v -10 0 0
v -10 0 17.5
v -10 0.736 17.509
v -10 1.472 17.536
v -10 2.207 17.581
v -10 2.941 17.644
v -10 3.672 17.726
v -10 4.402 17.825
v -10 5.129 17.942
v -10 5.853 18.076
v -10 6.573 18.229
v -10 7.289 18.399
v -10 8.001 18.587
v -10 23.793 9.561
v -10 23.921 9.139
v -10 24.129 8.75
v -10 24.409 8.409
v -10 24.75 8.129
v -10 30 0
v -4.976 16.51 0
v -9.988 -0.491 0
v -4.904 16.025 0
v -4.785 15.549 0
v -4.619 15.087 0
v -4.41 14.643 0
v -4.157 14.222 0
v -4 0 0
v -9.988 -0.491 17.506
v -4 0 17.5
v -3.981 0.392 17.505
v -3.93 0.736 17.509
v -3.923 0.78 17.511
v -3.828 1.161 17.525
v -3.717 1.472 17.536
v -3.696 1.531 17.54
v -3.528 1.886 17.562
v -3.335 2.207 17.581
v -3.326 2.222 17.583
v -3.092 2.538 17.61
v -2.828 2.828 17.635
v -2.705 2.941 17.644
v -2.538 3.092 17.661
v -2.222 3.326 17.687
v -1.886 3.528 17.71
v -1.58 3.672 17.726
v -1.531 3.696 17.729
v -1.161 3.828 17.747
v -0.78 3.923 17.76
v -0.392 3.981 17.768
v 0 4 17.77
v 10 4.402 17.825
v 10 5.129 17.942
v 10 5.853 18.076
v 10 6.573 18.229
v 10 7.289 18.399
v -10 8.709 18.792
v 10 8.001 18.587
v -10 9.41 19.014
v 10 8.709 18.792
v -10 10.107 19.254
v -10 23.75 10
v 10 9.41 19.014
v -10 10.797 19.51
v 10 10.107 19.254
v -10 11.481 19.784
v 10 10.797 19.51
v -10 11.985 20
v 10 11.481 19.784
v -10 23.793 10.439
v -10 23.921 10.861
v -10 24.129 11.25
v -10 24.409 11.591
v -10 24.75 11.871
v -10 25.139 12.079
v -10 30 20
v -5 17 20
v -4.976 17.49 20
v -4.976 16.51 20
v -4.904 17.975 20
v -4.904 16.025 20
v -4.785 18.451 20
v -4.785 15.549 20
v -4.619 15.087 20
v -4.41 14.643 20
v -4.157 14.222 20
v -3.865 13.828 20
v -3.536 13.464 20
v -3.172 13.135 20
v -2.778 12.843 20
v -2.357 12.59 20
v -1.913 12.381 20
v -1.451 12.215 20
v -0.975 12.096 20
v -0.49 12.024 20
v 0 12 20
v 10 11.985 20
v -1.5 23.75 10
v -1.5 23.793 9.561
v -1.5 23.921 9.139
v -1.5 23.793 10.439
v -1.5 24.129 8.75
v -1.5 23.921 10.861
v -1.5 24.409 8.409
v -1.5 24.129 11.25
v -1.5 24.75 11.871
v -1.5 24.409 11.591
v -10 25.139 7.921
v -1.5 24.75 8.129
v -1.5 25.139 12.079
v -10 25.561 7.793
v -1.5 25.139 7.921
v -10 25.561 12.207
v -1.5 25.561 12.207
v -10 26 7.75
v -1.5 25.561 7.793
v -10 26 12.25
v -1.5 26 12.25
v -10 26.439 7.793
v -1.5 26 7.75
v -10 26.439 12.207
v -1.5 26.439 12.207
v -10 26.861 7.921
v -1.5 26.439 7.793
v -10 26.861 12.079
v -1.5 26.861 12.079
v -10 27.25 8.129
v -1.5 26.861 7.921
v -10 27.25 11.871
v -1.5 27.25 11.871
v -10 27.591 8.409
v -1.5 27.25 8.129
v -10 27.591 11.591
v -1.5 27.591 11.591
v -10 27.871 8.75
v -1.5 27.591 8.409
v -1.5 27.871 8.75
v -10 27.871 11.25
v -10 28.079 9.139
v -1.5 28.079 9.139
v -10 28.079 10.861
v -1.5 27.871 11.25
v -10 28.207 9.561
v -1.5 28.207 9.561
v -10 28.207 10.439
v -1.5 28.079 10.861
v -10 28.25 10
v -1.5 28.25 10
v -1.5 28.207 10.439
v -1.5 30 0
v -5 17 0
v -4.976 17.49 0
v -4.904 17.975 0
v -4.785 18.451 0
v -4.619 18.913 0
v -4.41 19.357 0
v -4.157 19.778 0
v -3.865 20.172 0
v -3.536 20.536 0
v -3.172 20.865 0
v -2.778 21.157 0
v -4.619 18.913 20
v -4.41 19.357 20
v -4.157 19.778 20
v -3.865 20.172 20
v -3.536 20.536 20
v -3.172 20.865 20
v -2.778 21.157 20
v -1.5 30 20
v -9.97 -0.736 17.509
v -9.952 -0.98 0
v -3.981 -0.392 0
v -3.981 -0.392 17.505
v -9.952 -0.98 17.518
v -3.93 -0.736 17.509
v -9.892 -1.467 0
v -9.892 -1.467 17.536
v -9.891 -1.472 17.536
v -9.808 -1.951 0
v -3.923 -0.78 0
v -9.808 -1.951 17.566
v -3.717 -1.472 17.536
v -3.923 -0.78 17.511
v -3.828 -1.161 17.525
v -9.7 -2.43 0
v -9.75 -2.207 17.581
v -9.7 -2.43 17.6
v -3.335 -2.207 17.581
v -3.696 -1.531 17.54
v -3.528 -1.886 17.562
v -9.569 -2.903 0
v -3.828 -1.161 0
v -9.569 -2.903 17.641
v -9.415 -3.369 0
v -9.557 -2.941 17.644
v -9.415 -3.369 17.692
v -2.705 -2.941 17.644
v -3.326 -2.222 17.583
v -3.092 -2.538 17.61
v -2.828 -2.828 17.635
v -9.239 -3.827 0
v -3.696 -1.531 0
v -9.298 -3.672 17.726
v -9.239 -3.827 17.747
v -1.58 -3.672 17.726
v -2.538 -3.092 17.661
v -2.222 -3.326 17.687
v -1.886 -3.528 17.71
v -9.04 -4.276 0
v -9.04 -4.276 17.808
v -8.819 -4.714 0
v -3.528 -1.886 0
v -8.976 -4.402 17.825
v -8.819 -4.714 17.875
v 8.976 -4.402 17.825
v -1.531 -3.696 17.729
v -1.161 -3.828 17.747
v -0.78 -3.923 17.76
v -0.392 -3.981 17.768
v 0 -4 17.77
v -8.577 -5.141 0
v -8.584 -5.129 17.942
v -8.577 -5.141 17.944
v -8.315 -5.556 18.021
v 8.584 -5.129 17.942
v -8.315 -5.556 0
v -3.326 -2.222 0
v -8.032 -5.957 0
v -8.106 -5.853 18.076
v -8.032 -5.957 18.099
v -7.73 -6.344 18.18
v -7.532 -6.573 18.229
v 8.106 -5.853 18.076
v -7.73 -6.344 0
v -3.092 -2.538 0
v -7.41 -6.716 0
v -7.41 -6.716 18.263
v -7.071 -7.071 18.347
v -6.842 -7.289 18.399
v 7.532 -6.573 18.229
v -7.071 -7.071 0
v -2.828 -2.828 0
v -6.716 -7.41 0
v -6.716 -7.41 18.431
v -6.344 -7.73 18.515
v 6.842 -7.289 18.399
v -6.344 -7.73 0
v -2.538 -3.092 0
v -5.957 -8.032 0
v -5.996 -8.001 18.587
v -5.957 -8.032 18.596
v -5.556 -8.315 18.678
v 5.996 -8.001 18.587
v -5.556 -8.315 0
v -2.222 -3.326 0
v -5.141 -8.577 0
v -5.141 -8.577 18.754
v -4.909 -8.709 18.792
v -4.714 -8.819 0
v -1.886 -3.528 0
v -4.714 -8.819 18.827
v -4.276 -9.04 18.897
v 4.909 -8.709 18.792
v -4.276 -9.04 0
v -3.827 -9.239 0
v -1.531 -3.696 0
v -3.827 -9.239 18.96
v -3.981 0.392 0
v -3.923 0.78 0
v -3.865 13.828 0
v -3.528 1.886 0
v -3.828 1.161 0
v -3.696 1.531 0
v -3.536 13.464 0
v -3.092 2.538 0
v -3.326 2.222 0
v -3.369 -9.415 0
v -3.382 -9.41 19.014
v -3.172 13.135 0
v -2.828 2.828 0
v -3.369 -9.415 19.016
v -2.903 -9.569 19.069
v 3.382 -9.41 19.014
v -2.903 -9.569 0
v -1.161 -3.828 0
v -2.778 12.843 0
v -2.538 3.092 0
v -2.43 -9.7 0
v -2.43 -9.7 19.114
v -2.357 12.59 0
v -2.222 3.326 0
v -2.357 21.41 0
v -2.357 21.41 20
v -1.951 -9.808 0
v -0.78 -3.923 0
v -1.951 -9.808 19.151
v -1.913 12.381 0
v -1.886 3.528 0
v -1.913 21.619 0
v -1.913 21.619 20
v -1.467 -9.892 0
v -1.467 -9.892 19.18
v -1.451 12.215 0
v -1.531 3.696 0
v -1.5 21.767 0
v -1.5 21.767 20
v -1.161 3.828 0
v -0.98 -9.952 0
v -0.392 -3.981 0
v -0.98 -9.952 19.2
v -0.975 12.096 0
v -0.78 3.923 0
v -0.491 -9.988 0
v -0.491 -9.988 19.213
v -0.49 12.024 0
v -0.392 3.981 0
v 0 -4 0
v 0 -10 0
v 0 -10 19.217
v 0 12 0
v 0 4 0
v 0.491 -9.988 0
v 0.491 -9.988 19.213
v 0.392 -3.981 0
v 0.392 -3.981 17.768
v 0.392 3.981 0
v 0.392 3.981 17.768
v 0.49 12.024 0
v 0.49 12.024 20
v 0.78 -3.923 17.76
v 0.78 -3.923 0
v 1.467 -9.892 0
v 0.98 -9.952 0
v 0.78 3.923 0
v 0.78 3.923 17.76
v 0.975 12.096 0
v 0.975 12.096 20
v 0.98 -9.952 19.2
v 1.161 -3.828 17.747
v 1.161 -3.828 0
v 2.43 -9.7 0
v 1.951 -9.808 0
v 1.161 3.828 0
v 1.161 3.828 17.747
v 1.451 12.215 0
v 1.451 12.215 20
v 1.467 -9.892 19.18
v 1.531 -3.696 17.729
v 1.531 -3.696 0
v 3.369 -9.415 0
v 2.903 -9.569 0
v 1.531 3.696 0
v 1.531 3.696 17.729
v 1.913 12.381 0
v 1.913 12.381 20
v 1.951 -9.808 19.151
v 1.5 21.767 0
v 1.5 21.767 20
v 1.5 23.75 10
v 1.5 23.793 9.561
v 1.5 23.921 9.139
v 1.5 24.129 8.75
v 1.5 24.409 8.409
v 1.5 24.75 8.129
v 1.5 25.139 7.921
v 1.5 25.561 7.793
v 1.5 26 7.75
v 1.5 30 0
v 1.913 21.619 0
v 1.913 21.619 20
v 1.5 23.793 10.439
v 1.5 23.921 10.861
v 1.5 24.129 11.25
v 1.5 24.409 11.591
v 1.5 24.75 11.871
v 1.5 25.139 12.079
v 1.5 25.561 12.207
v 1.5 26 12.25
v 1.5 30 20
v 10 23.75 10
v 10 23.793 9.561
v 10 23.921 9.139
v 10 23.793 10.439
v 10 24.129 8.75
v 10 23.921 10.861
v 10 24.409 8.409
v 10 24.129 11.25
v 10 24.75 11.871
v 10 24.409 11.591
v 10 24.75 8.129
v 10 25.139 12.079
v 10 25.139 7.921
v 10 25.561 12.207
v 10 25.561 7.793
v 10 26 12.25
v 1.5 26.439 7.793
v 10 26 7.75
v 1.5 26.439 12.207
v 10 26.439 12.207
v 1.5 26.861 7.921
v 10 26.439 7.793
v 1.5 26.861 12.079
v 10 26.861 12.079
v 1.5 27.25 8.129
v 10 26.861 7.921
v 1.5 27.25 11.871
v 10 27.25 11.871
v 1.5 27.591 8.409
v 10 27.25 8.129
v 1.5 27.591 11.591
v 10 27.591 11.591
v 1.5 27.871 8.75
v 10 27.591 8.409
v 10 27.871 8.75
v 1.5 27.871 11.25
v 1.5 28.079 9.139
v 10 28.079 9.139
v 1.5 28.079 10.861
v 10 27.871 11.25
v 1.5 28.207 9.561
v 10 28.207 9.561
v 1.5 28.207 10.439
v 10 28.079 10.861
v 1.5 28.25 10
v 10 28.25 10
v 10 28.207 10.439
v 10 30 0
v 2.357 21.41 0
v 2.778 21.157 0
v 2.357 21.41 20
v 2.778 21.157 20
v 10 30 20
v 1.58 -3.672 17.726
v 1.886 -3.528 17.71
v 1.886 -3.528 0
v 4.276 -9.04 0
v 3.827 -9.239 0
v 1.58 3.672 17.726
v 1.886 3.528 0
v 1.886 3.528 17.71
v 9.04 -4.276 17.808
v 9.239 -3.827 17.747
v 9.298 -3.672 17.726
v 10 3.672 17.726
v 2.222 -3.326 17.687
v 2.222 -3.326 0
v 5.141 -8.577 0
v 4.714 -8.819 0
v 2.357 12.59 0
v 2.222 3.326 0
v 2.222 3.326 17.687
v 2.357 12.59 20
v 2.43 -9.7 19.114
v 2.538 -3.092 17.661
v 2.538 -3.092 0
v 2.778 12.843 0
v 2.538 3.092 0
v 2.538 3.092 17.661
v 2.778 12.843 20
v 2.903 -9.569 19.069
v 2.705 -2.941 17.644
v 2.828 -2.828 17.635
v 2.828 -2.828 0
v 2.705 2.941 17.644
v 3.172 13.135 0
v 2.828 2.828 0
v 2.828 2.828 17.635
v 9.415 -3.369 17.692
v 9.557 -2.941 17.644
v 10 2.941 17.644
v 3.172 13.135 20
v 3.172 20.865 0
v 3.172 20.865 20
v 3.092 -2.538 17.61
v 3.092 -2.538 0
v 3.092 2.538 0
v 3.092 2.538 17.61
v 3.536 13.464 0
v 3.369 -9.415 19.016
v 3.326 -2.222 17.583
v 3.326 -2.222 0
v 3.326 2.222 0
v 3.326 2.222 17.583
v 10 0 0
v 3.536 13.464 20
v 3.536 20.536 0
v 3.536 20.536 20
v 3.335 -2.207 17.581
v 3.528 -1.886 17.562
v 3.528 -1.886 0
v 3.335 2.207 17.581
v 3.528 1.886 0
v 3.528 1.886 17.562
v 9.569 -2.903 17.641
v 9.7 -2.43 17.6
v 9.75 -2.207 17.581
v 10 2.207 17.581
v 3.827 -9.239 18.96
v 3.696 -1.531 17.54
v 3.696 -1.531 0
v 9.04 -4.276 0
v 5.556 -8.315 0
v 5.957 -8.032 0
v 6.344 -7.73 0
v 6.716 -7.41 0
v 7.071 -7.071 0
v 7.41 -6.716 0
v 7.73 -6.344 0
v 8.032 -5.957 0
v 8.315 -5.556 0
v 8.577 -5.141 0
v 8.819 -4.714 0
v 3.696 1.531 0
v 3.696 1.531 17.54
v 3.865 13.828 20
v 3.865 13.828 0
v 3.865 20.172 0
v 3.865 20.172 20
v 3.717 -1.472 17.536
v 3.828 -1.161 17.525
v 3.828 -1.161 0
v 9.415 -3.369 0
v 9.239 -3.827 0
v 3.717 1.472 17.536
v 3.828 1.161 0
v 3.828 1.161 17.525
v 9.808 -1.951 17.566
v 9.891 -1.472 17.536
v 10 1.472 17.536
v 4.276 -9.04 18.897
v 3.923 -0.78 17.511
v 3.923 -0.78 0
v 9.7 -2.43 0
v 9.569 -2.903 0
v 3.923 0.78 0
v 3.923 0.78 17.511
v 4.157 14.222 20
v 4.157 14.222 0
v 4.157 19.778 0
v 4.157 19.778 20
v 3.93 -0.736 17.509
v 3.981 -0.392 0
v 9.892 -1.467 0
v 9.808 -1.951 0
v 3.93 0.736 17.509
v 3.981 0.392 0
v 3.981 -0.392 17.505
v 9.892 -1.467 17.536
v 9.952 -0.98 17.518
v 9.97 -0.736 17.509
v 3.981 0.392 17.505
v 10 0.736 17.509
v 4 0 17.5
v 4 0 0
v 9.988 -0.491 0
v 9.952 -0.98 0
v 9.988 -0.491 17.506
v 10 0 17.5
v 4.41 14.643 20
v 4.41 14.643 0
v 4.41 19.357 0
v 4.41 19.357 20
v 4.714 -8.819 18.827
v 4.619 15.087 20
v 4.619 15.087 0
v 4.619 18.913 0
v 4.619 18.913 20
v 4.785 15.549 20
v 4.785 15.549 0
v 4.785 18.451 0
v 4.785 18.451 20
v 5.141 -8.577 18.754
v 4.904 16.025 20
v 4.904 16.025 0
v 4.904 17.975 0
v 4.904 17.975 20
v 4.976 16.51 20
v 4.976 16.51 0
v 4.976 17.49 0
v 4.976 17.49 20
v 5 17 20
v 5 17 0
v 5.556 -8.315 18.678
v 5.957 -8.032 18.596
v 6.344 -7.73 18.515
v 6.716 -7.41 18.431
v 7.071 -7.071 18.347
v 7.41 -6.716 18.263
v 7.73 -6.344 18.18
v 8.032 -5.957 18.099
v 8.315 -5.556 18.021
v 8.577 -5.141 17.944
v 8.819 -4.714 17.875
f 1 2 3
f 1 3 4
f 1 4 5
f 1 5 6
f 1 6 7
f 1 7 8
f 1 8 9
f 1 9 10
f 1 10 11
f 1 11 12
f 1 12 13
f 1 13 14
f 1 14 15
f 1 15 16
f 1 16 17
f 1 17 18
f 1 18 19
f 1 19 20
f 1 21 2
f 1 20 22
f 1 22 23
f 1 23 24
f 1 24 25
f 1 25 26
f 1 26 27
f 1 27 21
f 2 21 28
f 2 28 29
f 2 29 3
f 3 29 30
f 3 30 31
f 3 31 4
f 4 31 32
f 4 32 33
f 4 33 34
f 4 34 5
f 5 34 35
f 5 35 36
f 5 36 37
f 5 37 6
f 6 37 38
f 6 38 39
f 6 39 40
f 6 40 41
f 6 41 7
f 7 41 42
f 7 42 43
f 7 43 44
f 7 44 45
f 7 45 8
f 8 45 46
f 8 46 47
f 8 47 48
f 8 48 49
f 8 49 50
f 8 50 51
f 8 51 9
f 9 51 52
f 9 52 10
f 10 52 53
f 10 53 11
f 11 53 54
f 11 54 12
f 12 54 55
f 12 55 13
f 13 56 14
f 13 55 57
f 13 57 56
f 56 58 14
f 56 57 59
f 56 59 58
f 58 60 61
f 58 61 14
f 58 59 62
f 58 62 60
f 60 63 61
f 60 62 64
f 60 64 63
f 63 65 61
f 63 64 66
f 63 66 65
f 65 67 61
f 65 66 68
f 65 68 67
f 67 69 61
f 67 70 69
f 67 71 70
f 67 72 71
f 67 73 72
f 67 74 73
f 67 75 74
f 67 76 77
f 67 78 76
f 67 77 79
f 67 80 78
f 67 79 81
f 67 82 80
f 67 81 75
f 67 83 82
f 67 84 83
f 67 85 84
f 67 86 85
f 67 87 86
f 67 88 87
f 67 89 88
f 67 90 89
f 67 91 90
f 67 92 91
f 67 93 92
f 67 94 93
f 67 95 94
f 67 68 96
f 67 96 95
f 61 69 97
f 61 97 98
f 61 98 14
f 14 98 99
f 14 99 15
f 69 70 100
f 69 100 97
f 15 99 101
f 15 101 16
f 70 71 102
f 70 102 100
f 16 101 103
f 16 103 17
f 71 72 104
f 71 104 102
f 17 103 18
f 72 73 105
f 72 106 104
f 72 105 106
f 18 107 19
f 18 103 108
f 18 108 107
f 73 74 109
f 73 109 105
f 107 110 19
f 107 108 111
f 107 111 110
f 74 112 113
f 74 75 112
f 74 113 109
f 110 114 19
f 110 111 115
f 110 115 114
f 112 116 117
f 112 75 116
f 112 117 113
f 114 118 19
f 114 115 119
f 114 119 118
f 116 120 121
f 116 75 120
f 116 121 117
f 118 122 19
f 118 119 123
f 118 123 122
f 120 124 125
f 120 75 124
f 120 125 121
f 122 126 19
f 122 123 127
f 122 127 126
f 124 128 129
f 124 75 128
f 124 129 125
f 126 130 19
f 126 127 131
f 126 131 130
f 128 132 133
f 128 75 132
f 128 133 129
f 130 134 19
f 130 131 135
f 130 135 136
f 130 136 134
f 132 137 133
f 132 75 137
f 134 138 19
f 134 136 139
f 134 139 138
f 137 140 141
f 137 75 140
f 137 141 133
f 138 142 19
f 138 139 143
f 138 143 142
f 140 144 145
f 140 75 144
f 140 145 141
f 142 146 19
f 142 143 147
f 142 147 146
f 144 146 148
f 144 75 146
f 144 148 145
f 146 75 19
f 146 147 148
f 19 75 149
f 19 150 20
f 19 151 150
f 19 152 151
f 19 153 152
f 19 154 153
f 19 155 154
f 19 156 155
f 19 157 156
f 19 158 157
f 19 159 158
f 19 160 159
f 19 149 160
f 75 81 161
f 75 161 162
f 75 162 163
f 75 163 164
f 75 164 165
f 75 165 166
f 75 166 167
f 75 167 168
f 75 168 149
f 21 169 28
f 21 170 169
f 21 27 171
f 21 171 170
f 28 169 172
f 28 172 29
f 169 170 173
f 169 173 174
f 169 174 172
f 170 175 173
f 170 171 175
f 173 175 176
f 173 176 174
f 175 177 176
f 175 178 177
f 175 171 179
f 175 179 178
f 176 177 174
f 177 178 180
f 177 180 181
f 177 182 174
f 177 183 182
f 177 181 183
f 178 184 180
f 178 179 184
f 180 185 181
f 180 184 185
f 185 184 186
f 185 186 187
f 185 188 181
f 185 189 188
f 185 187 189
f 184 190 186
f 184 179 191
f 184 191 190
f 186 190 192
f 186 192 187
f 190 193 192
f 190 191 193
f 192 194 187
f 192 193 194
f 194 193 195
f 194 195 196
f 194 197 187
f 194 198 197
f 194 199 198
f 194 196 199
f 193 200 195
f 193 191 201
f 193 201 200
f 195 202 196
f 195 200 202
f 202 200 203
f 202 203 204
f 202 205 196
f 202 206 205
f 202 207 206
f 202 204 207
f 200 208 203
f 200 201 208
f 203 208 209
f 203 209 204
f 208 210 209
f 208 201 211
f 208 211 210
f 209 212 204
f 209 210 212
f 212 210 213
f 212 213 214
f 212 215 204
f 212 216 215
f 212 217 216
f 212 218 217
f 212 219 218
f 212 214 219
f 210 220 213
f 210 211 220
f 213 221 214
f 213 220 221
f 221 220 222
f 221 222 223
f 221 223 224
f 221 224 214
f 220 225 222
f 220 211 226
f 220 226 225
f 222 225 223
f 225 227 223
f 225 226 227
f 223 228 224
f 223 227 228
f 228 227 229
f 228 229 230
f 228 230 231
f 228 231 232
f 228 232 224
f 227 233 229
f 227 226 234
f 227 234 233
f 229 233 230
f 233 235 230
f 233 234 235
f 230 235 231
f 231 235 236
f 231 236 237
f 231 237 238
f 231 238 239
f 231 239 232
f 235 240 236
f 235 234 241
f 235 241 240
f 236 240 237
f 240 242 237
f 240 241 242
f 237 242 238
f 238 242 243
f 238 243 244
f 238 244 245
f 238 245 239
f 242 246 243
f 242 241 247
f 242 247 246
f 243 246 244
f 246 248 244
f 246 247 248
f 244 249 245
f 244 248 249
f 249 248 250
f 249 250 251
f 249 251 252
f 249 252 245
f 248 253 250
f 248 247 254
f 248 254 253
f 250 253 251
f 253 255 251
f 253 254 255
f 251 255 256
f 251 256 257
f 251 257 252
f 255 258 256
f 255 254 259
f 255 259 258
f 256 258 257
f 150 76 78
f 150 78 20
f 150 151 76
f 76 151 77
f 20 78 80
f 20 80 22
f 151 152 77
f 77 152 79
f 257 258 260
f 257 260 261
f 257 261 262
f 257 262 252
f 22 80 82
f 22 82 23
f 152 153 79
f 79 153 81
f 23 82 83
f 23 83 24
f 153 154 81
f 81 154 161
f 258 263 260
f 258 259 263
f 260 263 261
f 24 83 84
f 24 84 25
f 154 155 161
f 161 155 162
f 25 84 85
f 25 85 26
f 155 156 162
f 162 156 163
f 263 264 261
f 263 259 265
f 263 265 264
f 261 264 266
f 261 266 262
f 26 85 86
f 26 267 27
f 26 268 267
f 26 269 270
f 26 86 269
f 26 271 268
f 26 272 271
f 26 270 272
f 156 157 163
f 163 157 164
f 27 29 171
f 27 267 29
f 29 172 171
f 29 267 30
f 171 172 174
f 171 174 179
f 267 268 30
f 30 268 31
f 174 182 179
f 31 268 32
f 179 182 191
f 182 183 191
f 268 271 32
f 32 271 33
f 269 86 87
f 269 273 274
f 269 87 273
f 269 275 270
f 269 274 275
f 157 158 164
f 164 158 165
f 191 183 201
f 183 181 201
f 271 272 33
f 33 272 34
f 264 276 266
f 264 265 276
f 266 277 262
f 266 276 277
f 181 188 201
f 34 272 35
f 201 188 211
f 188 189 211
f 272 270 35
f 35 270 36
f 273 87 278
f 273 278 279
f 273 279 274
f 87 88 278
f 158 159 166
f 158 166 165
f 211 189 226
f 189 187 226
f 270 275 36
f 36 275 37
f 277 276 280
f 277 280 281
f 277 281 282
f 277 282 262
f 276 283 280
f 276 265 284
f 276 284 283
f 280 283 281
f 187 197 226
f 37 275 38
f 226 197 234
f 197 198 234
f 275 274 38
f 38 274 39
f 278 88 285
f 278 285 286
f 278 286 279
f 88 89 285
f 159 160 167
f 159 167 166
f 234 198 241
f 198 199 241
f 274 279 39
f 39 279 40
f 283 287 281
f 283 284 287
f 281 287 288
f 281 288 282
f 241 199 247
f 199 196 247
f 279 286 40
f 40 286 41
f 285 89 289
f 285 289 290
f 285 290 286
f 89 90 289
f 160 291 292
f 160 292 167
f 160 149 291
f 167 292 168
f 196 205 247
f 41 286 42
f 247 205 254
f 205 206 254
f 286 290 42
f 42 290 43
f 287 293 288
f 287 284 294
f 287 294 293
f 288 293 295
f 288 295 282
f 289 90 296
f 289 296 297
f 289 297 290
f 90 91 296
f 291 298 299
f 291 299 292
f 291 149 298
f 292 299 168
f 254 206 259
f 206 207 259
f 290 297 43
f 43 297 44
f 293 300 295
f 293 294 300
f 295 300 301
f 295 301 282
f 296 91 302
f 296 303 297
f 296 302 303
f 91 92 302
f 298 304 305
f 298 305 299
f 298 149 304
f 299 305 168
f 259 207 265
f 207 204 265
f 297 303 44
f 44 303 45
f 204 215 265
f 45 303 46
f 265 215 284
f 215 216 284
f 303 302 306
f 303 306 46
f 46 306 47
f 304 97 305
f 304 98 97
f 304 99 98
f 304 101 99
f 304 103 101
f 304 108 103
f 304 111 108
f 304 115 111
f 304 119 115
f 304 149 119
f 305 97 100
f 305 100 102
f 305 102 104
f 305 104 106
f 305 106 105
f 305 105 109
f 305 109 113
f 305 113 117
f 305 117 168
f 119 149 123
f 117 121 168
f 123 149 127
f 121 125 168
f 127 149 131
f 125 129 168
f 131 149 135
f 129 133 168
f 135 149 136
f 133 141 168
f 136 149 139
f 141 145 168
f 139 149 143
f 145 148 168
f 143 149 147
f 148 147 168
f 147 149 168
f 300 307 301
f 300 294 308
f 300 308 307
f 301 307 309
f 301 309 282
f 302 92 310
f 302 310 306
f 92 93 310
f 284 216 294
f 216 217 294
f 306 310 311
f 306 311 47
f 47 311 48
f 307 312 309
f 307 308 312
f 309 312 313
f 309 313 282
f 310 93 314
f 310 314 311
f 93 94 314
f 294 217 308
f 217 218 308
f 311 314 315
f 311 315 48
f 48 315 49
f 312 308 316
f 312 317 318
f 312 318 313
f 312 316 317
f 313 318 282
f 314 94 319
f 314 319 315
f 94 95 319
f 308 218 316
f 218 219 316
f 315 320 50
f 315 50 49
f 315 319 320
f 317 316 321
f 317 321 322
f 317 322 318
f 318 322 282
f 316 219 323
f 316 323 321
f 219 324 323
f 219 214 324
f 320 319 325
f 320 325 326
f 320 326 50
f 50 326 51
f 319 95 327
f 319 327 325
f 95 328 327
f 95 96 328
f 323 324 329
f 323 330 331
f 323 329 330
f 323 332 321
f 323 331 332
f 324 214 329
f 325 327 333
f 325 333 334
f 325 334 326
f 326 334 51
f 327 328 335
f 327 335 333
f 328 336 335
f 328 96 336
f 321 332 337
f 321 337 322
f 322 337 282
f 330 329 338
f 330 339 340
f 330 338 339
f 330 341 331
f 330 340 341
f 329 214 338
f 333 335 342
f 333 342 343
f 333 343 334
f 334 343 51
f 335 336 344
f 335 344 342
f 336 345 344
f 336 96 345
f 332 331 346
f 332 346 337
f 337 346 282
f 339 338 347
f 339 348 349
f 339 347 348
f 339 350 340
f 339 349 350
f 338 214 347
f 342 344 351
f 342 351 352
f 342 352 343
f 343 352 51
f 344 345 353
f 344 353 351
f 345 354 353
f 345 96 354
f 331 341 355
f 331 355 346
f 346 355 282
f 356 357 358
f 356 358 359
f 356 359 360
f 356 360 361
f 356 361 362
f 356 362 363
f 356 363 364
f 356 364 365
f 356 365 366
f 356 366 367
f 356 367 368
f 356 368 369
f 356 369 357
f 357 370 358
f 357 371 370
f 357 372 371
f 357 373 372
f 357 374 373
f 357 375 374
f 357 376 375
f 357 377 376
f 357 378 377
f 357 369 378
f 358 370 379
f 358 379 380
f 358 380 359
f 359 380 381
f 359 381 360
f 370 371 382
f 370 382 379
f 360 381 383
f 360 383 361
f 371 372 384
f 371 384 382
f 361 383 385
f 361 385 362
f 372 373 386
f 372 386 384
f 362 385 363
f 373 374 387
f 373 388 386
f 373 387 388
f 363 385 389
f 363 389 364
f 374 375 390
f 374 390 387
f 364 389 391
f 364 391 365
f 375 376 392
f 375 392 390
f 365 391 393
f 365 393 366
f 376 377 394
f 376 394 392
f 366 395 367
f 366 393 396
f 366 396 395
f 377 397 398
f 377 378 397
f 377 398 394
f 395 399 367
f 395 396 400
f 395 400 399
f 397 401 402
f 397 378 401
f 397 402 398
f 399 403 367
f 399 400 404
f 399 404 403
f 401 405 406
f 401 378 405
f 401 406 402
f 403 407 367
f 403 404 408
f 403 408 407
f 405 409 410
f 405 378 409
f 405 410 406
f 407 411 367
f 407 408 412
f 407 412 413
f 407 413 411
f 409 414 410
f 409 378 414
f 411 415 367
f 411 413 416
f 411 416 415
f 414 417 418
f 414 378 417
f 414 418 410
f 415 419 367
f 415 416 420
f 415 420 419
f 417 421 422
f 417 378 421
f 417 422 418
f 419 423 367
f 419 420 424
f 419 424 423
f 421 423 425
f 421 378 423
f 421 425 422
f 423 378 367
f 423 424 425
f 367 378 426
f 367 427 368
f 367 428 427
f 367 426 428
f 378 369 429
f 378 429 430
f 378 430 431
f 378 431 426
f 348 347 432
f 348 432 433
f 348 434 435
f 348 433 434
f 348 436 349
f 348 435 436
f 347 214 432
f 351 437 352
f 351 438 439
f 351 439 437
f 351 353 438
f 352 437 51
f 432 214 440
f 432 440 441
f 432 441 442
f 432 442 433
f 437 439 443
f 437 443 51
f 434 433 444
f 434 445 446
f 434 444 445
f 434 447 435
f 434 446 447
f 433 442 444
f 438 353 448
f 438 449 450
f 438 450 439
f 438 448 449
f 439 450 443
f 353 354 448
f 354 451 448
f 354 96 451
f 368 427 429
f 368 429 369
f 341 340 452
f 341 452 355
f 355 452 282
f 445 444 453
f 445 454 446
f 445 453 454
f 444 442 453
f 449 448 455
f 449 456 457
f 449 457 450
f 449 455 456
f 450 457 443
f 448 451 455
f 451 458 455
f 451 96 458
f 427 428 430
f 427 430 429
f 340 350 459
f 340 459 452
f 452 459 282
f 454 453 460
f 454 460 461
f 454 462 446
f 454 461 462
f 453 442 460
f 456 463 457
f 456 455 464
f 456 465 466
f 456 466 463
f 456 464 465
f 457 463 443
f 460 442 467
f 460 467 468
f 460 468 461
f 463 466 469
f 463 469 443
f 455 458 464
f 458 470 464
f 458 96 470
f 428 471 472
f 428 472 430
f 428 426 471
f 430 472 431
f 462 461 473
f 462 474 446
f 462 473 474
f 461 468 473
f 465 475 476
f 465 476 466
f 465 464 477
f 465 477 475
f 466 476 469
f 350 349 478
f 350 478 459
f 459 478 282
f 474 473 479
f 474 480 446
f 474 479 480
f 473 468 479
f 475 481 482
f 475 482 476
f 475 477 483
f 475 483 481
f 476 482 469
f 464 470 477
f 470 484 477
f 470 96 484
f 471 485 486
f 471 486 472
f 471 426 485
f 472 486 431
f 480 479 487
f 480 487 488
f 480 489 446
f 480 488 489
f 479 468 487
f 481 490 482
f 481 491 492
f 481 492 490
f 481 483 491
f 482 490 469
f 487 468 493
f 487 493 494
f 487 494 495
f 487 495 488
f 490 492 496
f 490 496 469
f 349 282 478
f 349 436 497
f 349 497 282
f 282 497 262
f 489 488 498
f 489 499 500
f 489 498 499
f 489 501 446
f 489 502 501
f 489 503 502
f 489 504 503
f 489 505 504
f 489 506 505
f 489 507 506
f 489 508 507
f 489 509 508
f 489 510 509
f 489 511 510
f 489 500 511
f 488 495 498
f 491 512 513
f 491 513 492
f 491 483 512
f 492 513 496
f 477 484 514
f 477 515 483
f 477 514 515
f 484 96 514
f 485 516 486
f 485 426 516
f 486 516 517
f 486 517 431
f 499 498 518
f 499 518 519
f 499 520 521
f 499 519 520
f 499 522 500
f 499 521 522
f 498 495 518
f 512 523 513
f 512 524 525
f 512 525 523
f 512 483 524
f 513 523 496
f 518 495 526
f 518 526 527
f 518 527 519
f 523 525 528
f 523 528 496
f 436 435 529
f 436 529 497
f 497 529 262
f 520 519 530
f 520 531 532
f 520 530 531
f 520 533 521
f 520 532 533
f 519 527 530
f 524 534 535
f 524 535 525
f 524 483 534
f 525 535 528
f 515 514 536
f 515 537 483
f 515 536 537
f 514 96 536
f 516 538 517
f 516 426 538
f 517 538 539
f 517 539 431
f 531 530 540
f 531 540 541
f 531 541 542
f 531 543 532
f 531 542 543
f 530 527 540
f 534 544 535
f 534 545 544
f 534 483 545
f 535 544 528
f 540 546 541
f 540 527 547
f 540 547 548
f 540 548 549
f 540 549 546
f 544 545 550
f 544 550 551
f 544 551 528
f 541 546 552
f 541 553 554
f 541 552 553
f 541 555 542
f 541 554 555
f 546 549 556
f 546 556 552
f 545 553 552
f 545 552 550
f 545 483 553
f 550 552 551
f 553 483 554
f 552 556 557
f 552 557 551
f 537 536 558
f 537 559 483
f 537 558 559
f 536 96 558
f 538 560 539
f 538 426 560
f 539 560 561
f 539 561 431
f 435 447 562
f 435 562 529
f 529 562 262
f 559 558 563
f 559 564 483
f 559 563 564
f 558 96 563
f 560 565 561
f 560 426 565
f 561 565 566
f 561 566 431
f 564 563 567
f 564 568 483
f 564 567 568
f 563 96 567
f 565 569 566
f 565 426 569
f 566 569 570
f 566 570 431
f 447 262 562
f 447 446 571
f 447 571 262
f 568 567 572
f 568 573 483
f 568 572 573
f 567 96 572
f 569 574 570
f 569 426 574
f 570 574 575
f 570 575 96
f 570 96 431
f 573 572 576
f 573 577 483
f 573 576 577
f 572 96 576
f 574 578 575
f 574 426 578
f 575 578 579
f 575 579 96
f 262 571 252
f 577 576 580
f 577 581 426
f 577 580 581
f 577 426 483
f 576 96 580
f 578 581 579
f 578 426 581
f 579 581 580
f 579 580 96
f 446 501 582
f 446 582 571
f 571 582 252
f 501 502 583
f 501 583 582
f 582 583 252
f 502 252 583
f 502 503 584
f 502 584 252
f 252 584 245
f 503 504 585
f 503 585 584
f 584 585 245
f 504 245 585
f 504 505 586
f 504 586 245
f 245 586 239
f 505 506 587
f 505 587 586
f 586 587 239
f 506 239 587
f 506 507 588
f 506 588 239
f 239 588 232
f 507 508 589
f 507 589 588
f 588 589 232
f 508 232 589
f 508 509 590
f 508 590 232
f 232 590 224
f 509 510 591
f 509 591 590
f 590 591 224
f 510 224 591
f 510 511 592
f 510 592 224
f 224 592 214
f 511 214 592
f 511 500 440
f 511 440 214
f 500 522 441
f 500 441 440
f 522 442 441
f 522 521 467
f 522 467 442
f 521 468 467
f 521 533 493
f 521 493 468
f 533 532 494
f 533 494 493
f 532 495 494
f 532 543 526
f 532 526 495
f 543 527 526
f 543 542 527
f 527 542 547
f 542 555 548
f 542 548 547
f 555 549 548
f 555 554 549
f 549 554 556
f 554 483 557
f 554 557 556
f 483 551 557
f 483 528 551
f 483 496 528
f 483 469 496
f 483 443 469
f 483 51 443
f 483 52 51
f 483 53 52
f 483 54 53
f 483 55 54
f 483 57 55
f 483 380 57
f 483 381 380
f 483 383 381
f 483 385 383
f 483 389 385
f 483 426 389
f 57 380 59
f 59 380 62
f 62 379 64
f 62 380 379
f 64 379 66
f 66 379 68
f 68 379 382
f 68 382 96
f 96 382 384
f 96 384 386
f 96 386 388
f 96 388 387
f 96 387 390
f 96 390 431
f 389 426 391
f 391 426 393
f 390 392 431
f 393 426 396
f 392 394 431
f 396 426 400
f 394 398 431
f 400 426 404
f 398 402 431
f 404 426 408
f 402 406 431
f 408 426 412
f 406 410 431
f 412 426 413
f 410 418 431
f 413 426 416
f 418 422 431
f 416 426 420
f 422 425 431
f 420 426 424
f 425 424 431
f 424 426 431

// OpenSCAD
width=20;
length=40;
shaftDiameter=10;
threadDiameter=8;
screwDiameter=4.5;
height=20;
separation=17;
slotWidth=3;
screwOffset=(length-width/2+separation+shaftDiameter/2)/2;
curvatureRadius=30;
overlap=0.05;

difference() {
    union() {
        translate([-width/2,0,0])
            cube([width,length-width/2,height]);
        cylinder(r=width/2,h=height,$fn=128);
    }
    translate([0,0,-overlap])
        cylinder(r=threadDiameter/2,h=height+2*overlap,$fn=64);
    translate([0,separation,-overlap])
        cylinder(r=shaftDiameter/2,h=height+2*overlap,$fn=64);
    translate([-slotWidth/2,separation,-overlap])
        cube([slotWidth,100,height+2*overlap]);
    translate([-width/2-overlap,screwOffset,height/2])
        rotate([0,90,0])
            cylinder(r=screwDiameter/2,h=width+2*overlap,$fn=32);
    translate([-width/2-overlap,0,height+curvatureRadius-2.5])
        rotate([0,90,0])
            cylinder(r=curvatureRadius,h=width+2*overlap,$fn=256);
}
